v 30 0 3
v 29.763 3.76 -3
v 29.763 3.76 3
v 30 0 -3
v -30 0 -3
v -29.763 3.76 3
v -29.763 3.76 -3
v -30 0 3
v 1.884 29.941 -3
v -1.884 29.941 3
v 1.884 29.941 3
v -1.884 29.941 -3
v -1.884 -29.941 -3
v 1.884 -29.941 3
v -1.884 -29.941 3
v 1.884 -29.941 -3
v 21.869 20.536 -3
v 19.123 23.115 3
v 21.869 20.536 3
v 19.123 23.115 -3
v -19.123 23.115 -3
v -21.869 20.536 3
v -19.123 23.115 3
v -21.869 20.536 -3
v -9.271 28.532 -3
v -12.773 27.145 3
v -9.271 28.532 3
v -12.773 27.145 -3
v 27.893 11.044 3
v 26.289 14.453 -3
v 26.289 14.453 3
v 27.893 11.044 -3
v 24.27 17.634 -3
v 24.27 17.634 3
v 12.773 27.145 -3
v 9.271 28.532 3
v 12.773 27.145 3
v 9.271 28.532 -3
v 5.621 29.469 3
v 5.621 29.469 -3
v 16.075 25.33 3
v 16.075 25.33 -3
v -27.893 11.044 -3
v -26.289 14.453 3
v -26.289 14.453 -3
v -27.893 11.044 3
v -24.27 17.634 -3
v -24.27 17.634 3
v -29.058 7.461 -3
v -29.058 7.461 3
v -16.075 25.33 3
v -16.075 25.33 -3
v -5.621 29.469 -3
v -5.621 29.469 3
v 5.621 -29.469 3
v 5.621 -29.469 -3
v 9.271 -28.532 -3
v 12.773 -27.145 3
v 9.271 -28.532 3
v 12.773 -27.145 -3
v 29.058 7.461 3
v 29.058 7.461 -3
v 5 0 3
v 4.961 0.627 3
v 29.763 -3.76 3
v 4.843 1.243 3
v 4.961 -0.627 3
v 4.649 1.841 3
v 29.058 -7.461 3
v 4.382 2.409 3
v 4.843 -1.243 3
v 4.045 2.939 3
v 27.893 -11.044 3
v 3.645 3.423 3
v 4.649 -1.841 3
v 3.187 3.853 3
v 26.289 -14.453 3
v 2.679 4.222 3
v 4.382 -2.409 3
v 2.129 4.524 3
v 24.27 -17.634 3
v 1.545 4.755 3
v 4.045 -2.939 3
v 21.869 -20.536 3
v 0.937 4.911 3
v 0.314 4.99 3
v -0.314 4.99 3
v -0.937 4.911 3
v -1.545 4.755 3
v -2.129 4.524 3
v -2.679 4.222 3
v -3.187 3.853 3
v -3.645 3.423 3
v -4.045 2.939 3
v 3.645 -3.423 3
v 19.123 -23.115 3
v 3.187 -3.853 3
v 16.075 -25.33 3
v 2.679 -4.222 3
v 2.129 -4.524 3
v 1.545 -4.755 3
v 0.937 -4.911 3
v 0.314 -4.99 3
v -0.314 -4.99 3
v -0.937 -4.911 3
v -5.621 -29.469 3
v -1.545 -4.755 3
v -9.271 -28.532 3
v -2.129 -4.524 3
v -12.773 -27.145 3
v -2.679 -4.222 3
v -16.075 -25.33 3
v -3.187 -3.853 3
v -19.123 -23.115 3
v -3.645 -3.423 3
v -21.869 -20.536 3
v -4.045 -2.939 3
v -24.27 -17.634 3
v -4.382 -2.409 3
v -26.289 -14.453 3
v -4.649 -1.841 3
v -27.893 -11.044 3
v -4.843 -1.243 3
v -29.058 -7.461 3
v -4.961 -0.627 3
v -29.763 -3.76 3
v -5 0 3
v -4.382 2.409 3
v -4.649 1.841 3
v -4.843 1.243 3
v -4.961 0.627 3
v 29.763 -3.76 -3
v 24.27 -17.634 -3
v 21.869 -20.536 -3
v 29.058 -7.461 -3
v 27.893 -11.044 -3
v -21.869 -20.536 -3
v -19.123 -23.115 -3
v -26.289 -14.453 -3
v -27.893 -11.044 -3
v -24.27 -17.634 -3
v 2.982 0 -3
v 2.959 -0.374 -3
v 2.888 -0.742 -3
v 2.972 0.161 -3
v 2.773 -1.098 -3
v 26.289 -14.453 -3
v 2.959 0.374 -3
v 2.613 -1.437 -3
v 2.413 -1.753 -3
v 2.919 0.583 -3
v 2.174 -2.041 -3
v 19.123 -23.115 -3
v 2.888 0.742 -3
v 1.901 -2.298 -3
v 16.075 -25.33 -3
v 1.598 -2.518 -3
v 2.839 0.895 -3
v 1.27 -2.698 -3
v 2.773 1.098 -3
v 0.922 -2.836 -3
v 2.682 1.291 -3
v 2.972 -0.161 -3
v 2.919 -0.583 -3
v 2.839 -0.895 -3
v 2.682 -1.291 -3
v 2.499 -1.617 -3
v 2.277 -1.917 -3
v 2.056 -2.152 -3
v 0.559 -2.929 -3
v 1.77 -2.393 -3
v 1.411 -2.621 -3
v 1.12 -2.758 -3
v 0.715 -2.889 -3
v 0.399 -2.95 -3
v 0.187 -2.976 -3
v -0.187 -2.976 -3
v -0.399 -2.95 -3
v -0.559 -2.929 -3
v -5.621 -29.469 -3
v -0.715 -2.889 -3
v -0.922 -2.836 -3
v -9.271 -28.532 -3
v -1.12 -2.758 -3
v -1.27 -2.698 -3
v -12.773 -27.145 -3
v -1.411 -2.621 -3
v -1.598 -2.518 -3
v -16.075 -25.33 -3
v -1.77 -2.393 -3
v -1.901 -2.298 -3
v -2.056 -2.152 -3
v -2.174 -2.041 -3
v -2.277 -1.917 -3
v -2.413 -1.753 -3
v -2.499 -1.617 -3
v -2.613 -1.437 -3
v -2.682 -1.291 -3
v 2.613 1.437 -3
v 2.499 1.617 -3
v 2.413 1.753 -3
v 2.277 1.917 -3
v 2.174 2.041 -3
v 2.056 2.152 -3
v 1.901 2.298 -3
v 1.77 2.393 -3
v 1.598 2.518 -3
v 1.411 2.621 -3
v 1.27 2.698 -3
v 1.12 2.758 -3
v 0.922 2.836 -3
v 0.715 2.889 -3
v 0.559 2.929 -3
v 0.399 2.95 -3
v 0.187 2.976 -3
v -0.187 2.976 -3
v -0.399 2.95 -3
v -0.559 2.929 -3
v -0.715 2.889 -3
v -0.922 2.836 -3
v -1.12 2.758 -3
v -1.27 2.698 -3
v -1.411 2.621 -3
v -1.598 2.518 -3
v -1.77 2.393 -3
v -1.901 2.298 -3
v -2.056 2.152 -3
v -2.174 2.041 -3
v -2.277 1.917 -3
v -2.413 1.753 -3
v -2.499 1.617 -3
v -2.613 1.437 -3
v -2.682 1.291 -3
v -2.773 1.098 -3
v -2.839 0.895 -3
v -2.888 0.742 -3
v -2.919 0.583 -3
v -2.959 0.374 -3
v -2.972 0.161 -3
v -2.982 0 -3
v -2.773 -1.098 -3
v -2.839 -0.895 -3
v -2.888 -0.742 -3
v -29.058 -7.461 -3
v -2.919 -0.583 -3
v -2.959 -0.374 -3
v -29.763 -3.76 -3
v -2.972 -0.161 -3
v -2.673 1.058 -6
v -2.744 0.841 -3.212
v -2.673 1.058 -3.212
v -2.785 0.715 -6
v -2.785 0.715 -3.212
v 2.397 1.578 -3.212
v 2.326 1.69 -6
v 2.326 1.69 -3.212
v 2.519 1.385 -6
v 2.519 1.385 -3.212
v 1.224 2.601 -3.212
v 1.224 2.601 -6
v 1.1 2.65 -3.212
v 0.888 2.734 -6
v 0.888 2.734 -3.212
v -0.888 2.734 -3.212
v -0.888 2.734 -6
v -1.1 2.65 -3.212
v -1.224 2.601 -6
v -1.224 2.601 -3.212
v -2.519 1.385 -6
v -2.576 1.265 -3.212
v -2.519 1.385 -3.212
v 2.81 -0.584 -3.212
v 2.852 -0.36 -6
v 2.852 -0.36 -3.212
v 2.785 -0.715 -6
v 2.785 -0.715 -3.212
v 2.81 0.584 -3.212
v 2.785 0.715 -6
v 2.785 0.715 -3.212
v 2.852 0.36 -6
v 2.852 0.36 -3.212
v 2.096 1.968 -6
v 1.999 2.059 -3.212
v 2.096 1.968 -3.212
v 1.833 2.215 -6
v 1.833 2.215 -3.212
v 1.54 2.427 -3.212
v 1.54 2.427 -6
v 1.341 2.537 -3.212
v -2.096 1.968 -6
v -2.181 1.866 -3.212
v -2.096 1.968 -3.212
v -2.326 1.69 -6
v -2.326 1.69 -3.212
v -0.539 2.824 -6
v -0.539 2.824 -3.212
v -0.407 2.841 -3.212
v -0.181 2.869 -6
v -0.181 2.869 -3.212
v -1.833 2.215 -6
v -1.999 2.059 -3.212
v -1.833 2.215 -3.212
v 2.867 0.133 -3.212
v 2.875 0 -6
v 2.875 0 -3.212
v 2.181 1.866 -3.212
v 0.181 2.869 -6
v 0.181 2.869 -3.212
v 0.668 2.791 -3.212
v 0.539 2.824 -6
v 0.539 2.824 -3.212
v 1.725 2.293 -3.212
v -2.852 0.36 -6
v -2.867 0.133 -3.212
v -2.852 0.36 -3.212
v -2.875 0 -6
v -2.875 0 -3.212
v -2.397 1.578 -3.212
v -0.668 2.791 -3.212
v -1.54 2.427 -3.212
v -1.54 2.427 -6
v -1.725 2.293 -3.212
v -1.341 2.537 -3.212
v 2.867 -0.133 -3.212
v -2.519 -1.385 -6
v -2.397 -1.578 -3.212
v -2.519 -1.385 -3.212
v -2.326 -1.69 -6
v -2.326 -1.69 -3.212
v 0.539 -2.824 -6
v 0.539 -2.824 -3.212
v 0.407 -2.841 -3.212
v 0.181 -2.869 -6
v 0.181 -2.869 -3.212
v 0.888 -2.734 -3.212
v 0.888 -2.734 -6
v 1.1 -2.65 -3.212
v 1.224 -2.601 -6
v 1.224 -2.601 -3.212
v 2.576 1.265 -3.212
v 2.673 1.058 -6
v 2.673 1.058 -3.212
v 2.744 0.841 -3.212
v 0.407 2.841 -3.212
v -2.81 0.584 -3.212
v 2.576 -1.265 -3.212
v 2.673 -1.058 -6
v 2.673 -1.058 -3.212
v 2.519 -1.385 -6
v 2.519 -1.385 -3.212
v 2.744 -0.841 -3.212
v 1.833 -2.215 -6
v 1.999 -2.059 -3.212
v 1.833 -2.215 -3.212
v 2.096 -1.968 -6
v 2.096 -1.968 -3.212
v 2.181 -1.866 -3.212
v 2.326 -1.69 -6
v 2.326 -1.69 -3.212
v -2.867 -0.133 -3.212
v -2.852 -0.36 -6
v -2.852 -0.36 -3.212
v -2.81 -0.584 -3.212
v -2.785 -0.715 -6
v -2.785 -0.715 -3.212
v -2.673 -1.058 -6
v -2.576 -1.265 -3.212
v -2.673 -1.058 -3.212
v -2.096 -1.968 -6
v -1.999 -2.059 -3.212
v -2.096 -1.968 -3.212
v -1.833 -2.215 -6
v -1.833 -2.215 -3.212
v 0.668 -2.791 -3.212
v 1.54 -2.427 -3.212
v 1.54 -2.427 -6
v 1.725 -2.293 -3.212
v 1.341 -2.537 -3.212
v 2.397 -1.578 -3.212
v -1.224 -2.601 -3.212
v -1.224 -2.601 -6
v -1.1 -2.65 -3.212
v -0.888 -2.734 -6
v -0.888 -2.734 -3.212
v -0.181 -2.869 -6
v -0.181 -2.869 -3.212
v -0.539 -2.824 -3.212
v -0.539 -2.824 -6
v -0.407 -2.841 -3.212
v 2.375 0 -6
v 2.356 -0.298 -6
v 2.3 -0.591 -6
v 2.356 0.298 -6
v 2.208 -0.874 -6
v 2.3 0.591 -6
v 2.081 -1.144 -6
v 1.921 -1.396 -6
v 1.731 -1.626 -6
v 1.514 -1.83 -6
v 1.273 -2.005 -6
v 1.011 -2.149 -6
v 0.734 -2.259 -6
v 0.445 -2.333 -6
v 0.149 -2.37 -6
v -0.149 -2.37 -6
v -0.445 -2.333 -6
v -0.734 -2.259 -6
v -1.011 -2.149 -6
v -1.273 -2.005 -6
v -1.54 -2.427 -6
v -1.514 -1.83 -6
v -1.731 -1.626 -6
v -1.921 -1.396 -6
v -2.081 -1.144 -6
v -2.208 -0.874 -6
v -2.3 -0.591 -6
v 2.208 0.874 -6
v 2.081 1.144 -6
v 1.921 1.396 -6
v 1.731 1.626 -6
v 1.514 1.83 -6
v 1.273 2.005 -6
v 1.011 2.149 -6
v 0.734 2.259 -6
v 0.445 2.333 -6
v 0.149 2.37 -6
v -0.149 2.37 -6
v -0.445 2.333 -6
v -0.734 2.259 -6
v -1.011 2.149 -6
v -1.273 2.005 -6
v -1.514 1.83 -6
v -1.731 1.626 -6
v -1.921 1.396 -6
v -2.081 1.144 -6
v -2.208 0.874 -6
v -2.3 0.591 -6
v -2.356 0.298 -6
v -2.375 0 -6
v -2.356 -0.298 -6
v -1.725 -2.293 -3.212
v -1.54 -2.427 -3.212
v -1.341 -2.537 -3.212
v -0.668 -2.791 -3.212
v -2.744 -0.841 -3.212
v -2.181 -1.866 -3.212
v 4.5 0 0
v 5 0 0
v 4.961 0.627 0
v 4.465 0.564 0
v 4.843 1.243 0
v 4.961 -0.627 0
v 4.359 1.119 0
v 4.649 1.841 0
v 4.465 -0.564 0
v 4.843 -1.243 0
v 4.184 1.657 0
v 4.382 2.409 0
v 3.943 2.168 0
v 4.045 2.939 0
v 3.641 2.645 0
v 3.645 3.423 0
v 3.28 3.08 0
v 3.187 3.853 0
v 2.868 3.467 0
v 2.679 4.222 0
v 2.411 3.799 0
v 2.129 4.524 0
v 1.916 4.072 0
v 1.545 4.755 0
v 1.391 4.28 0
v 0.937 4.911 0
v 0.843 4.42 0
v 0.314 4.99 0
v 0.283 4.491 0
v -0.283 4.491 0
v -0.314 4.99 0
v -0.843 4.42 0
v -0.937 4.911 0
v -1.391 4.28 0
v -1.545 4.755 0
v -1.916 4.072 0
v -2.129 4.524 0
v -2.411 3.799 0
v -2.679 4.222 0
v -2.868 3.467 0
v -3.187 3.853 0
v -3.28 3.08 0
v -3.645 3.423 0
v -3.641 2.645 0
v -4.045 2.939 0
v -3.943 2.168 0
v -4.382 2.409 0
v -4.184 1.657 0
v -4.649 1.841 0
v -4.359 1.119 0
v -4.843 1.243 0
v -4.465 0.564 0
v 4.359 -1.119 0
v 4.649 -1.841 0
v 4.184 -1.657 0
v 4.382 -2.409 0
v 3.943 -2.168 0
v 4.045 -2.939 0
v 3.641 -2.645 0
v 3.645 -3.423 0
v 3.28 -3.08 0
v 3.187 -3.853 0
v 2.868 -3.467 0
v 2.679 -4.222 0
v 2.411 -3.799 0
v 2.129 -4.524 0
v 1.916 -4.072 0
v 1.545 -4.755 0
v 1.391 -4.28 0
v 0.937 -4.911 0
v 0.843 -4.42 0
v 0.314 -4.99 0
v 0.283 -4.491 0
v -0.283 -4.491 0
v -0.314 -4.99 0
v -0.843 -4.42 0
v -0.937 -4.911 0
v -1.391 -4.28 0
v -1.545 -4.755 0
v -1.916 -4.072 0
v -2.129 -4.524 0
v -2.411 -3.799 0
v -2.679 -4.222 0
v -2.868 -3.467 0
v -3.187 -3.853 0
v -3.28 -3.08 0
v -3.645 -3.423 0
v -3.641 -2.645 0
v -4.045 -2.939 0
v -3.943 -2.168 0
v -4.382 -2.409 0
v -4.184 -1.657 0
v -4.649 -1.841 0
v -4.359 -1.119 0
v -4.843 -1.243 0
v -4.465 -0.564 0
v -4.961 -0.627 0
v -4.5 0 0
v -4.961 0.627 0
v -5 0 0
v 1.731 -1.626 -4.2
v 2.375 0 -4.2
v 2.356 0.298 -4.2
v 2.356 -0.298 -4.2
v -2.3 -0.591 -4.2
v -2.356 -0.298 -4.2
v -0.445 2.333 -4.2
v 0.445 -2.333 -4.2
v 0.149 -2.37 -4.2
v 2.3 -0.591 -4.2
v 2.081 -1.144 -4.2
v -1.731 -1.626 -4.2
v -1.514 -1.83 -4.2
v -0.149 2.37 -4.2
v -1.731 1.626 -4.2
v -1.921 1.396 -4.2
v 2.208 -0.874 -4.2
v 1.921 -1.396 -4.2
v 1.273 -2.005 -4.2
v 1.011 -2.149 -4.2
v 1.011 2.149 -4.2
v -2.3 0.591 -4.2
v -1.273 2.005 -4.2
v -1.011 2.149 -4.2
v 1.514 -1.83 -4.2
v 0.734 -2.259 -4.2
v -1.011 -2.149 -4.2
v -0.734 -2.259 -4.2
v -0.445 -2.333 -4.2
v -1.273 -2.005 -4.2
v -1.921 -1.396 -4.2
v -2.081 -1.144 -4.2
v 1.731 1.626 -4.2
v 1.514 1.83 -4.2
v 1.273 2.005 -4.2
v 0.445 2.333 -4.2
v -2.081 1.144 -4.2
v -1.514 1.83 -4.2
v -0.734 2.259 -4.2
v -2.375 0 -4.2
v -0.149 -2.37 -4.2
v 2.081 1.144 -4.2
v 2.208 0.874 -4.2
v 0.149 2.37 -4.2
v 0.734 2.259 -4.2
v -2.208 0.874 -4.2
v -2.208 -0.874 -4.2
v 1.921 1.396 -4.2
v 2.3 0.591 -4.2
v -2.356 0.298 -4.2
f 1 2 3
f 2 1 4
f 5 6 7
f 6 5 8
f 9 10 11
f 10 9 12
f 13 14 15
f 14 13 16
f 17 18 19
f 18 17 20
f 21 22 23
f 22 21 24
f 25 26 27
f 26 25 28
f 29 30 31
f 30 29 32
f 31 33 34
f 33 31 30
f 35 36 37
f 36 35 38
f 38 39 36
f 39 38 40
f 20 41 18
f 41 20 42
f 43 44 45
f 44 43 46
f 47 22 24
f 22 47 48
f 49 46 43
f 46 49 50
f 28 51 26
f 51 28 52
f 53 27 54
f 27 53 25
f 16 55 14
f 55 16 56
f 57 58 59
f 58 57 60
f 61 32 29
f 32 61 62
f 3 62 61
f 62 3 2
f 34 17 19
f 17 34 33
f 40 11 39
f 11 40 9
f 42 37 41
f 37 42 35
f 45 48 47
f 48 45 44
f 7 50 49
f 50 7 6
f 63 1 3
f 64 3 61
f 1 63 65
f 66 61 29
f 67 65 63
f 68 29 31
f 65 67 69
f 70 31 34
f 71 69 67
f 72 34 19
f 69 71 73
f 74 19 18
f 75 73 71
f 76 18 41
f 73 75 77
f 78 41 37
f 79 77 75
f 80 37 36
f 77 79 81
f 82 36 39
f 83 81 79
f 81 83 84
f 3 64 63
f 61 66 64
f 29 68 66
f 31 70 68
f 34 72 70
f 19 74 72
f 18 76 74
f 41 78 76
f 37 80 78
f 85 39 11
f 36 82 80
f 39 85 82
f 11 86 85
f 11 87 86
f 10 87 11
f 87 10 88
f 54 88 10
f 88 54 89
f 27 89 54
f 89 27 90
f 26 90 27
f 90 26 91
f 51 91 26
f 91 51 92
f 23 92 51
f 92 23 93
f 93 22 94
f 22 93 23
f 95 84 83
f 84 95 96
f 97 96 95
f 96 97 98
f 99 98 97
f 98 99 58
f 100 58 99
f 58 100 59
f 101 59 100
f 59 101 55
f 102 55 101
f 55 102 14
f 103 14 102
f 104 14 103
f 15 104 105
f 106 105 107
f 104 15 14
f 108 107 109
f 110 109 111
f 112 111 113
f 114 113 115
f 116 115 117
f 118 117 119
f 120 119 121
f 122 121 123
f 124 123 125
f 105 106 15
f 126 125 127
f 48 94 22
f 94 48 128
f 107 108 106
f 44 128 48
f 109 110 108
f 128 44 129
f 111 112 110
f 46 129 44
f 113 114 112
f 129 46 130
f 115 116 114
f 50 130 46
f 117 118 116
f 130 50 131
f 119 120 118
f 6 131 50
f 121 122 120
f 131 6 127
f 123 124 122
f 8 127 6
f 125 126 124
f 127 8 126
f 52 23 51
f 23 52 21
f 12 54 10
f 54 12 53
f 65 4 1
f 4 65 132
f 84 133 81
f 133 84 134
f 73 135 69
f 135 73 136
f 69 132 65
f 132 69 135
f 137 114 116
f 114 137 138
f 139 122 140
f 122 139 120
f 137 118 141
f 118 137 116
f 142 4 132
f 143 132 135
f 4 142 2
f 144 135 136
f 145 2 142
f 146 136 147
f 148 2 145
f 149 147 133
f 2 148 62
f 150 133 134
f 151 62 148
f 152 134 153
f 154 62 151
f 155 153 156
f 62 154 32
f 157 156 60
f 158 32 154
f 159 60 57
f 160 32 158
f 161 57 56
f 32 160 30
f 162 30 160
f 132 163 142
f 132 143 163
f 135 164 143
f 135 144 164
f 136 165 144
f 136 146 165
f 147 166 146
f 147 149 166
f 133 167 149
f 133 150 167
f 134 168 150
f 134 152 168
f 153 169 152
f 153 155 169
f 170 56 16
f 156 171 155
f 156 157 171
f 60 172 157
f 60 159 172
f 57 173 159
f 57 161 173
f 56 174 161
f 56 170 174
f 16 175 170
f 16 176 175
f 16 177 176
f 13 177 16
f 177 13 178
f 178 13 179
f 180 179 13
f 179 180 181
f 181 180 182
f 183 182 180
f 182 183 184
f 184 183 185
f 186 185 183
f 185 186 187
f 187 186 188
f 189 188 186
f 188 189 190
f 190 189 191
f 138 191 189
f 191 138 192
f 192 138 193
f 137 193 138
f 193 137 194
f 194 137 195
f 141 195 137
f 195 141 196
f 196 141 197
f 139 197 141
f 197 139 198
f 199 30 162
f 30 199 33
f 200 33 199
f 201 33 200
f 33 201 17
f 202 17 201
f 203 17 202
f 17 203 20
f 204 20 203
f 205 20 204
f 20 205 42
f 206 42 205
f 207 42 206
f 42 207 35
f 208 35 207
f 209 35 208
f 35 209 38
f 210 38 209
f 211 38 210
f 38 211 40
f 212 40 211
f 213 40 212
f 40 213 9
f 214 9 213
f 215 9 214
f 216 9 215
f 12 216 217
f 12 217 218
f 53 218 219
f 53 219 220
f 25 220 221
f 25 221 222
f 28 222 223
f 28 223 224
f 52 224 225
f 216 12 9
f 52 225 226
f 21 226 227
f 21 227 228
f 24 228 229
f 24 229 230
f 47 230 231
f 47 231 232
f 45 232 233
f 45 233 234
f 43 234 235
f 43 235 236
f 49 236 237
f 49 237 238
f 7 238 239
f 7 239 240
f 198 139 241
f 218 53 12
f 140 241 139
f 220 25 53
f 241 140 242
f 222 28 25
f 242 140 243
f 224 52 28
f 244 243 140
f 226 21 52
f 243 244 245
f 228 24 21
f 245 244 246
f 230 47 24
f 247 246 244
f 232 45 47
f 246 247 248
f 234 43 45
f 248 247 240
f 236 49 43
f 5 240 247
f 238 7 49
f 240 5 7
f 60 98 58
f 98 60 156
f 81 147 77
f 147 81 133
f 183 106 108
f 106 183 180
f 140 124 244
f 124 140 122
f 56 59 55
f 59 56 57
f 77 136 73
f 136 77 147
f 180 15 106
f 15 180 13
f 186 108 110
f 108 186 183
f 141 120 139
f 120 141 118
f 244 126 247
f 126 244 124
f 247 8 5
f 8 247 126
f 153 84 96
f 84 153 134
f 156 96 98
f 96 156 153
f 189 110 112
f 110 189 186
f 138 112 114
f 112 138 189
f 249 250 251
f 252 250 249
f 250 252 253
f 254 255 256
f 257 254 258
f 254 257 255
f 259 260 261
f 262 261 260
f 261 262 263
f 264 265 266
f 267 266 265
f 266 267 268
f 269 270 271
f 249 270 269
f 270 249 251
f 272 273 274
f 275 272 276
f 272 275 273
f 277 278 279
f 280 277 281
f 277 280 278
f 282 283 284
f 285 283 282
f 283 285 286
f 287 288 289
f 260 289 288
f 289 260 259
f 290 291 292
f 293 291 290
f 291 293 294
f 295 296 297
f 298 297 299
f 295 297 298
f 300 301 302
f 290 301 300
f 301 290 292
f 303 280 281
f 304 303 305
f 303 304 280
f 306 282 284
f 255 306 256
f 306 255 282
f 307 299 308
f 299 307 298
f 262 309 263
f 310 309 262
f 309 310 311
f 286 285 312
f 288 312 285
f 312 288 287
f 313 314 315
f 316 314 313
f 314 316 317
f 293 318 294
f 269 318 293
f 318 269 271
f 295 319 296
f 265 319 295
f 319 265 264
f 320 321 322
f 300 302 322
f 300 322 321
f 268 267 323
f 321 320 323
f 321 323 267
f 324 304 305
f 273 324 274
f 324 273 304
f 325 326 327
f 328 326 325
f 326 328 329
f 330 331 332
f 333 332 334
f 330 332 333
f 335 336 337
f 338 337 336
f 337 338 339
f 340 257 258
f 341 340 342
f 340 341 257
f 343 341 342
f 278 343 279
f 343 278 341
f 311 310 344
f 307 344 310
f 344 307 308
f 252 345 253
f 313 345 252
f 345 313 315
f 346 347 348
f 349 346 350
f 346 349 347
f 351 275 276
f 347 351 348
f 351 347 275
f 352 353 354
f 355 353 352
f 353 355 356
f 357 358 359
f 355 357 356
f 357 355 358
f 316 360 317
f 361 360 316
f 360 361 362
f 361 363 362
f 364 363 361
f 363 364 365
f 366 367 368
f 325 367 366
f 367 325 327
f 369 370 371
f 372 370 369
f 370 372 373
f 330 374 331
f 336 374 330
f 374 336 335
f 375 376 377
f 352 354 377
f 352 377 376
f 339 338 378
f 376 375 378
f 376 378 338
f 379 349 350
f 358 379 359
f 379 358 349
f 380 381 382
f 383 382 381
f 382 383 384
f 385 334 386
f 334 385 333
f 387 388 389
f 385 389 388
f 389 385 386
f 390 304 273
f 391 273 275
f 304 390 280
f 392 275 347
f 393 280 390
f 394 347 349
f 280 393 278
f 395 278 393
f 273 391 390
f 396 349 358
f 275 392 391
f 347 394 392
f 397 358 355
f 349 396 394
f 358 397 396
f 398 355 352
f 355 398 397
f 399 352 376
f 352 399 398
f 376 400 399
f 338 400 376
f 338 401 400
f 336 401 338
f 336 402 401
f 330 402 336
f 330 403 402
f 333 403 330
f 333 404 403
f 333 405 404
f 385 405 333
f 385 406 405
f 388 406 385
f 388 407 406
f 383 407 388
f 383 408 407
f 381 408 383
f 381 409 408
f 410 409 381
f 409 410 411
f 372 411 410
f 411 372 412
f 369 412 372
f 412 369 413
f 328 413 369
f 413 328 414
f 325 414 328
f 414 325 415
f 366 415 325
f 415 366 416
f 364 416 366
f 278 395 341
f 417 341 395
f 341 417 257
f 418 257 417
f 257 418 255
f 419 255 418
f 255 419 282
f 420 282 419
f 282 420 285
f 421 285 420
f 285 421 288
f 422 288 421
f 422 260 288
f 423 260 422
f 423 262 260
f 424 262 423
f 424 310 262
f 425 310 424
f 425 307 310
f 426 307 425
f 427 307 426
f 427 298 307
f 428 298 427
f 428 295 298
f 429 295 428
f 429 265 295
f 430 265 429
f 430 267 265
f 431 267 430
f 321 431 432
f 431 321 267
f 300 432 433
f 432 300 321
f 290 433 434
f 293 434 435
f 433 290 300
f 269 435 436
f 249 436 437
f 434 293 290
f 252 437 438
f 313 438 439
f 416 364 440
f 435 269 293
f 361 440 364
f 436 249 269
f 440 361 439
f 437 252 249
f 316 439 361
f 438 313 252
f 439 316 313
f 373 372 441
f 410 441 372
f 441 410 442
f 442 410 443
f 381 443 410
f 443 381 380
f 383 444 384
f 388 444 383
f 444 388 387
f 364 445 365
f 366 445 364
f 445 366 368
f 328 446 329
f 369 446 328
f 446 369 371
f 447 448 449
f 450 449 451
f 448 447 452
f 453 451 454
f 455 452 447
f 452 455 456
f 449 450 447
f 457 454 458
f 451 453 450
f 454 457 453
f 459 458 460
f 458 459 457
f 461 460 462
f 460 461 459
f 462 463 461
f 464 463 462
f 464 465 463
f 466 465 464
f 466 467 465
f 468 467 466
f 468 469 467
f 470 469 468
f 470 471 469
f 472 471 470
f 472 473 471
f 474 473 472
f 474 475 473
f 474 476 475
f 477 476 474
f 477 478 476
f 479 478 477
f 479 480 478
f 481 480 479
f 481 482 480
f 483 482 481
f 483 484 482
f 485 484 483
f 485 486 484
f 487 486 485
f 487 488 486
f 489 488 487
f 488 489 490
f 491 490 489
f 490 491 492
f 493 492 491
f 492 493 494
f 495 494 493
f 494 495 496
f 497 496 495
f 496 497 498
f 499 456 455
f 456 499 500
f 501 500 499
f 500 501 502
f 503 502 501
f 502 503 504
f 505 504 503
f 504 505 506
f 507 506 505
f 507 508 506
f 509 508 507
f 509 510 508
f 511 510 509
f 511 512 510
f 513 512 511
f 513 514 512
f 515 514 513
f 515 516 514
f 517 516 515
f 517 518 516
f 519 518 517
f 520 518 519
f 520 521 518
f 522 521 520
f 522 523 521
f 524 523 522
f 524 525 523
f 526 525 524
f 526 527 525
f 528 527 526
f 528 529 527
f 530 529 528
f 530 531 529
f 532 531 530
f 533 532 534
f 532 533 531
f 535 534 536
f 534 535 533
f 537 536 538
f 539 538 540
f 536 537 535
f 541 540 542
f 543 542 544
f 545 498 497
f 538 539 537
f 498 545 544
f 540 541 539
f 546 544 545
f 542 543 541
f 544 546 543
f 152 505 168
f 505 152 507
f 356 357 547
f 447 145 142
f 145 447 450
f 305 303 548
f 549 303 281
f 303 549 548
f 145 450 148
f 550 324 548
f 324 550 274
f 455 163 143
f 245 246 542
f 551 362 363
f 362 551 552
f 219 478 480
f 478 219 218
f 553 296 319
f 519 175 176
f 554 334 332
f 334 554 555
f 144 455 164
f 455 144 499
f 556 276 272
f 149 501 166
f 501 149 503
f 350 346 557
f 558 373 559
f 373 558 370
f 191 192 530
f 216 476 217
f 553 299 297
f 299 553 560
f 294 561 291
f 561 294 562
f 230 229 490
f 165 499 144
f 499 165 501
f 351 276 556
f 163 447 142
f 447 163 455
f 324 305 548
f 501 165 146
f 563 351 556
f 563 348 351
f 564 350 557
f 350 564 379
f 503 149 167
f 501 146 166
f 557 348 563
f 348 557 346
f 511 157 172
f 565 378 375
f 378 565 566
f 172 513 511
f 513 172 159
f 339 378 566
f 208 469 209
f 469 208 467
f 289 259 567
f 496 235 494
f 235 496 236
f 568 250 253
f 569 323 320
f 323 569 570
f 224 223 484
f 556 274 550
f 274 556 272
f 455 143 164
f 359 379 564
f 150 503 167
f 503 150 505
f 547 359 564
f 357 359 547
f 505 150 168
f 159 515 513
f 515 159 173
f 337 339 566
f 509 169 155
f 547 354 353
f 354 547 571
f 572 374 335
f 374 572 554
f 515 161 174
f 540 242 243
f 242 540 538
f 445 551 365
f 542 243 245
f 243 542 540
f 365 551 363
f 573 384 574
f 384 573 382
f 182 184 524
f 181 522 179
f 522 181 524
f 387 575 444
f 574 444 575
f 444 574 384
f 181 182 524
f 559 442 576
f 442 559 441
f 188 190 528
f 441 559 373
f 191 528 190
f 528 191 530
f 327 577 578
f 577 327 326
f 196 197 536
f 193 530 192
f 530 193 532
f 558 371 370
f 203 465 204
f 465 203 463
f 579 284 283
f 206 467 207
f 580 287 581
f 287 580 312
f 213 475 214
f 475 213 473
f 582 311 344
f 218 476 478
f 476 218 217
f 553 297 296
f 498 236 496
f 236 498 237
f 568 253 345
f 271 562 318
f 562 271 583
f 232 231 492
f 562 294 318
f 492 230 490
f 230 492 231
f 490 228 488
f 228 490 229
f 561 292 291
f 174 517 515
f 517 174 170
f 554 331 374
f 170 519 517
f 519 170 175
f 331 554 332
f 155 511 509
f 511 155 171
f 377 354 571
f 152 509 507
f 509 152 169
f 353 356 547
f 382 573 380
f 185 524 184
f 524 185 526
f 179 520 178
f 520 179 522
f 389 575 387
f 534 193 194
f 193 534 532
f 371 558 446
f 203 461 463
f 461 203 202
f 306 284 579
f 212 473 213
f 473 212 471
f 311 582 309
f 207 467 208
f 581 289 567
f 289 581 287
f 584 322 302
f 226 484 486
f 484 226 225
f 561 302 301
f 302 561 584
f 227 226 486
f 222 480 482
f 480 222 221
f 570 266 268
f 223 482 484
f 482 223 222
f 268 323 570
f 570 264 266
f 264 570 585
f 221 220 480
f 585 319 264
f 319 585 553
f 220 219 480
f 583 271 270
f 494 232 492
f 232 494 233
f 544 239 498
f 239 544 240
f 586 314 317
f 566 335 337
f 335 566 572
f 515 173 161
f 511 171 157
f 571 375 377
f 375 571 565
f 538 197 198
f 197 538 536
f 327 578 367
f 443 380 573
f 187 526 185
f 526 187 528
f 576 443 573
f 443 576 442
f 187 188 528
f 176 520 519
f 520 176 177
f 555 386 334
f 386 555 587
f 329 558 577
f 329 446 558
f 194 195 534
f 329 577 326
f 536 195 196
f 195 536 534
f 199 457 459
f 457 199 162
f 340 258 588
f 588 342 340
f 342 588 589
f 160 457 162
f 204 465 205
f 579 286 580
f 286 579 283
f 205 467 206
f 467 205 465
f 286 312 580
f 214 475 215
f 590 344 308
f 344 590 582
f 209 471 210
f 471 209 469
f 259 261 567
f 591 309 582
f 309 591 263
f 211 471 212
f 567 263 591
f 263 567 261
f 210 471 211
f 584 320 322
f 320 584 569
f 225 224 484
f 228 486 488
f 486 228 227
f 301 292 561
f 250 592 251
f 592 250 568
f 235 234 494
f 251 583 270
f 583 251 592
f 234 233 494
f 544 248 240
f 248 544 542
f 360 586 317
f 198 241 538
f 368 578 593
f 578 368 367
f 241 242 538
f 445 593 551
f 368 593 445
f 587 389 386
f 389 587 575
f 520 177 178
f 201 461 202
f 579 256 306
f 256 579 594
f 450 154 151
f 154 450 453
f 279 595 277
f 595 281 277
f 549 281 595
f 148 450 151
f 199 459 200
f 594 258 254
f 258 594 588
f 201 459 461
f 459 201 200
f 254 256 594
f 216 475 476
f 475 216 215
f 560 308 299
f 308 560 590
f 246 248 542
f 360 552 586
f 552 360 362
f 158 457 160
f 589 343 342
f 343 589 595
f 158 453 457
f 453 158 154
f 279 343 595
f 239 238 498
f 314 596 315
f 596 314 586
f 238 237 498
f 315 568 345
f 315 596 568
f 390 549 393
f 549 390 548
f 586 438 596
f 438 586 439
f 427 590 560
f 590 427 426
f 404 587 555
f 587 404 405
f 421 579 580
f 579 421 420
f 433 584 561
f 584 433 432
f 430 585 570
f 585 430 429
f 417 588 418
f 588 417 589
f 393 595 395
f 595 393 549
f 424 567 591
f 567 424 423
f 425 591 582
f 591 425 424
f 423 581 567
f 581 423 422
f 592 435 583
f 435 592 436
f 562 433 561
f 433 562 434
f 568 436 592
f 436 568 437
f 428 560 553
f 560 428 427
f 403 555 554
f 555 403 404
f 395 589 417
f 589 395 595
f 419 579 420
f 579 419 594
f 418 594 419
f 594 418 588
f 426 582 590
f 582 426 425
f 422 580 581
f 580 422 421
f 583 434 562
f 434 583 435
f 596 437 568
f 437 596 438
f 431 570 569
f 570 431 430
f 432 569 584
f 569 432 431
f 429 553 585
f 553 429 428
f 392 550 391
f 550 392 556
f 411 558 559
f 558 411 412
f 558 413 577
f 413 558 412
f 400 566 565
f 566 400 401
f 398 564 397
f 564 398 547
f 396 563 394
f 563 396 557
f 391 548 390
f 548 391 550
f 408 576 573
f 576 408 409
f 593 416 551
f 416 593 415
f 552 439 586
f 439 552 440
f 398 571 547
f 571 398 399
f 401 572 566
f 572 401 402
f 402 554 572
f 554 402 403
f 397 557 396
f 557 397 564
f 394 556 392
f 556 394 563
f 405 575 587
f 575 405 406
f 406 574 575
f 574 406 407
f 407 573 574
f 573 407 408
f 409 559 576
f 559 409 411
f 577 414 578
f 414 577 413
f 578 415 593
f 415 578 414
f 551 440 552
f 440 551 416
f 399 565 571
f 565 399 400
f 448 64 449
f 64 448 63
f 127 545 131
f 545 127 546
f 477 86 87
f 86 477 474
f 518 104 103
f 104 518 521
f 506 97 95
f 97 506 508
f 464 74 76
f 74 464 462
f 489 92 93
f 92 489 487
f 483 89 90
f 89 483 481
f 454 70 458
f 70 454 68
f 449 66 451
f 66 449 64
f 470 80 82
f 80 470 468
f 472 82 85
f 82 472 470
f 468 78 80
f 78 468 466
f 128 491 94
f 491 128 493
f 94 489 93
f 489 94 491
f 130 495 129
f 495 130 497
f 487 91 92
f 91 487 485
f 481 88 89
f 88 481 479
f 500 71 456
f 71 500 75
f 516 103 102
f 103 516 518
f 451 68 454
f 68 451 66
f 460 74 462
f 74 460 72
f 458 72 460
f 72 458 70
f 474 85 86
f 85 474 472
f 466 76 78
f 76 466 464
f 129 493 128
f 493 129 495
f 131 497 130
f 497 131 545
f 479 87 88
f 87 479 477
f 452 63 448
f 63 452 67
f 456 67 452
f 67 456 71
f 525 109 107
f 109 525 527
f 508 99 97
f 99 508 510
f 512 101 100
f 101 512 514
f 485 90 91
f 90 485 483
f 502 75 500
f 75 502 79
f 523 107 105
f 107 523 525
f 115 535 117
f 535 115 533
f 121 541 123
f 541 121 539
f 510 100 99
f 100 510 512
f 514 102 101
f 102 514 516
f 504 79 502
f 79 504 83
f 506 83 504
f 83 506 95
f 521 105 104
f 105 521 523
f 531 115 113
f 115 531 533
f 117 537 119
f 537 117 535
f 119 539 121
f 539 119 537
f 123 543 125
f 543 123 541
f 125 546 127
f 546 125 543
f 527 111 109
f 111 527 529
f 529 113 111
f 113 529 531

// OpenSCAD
$fn = 50;

difference() {
	union() {
		translate(v = [0, 0, -3.0]) {
			cylinder(h = 6, r = 30.0);
		}
		#translate(v = [0, 0, -6.0]) {
			cylinder(h = 6, r = 2.875);
		}
	}
	union() {
		translate(v = [0, 0, 0]) {
			rotate(a = [0, 0, 0]) {
				difference() {
					union() {
						translate(v = [0, 0, -6.0]) {
							cylinder(h = 6, r = 2.25);
						}
						translate(v = [0, 0, -4.2]) {
							cylinder(h = 4.2, r1 = 2.375, r2 = 4.5);
						}
						translate(v = [0, 0, -6.0]) {
							cylinder(h = 6, r = 2.375);
						}
						translate(v = [0, 0, -6.0]) {
							cylinder(h = 6, r = 2.25);
						}
					}
					union();
				}
			}
		}
		#cylinder(h = 3, r = 5.0);
	}
}
